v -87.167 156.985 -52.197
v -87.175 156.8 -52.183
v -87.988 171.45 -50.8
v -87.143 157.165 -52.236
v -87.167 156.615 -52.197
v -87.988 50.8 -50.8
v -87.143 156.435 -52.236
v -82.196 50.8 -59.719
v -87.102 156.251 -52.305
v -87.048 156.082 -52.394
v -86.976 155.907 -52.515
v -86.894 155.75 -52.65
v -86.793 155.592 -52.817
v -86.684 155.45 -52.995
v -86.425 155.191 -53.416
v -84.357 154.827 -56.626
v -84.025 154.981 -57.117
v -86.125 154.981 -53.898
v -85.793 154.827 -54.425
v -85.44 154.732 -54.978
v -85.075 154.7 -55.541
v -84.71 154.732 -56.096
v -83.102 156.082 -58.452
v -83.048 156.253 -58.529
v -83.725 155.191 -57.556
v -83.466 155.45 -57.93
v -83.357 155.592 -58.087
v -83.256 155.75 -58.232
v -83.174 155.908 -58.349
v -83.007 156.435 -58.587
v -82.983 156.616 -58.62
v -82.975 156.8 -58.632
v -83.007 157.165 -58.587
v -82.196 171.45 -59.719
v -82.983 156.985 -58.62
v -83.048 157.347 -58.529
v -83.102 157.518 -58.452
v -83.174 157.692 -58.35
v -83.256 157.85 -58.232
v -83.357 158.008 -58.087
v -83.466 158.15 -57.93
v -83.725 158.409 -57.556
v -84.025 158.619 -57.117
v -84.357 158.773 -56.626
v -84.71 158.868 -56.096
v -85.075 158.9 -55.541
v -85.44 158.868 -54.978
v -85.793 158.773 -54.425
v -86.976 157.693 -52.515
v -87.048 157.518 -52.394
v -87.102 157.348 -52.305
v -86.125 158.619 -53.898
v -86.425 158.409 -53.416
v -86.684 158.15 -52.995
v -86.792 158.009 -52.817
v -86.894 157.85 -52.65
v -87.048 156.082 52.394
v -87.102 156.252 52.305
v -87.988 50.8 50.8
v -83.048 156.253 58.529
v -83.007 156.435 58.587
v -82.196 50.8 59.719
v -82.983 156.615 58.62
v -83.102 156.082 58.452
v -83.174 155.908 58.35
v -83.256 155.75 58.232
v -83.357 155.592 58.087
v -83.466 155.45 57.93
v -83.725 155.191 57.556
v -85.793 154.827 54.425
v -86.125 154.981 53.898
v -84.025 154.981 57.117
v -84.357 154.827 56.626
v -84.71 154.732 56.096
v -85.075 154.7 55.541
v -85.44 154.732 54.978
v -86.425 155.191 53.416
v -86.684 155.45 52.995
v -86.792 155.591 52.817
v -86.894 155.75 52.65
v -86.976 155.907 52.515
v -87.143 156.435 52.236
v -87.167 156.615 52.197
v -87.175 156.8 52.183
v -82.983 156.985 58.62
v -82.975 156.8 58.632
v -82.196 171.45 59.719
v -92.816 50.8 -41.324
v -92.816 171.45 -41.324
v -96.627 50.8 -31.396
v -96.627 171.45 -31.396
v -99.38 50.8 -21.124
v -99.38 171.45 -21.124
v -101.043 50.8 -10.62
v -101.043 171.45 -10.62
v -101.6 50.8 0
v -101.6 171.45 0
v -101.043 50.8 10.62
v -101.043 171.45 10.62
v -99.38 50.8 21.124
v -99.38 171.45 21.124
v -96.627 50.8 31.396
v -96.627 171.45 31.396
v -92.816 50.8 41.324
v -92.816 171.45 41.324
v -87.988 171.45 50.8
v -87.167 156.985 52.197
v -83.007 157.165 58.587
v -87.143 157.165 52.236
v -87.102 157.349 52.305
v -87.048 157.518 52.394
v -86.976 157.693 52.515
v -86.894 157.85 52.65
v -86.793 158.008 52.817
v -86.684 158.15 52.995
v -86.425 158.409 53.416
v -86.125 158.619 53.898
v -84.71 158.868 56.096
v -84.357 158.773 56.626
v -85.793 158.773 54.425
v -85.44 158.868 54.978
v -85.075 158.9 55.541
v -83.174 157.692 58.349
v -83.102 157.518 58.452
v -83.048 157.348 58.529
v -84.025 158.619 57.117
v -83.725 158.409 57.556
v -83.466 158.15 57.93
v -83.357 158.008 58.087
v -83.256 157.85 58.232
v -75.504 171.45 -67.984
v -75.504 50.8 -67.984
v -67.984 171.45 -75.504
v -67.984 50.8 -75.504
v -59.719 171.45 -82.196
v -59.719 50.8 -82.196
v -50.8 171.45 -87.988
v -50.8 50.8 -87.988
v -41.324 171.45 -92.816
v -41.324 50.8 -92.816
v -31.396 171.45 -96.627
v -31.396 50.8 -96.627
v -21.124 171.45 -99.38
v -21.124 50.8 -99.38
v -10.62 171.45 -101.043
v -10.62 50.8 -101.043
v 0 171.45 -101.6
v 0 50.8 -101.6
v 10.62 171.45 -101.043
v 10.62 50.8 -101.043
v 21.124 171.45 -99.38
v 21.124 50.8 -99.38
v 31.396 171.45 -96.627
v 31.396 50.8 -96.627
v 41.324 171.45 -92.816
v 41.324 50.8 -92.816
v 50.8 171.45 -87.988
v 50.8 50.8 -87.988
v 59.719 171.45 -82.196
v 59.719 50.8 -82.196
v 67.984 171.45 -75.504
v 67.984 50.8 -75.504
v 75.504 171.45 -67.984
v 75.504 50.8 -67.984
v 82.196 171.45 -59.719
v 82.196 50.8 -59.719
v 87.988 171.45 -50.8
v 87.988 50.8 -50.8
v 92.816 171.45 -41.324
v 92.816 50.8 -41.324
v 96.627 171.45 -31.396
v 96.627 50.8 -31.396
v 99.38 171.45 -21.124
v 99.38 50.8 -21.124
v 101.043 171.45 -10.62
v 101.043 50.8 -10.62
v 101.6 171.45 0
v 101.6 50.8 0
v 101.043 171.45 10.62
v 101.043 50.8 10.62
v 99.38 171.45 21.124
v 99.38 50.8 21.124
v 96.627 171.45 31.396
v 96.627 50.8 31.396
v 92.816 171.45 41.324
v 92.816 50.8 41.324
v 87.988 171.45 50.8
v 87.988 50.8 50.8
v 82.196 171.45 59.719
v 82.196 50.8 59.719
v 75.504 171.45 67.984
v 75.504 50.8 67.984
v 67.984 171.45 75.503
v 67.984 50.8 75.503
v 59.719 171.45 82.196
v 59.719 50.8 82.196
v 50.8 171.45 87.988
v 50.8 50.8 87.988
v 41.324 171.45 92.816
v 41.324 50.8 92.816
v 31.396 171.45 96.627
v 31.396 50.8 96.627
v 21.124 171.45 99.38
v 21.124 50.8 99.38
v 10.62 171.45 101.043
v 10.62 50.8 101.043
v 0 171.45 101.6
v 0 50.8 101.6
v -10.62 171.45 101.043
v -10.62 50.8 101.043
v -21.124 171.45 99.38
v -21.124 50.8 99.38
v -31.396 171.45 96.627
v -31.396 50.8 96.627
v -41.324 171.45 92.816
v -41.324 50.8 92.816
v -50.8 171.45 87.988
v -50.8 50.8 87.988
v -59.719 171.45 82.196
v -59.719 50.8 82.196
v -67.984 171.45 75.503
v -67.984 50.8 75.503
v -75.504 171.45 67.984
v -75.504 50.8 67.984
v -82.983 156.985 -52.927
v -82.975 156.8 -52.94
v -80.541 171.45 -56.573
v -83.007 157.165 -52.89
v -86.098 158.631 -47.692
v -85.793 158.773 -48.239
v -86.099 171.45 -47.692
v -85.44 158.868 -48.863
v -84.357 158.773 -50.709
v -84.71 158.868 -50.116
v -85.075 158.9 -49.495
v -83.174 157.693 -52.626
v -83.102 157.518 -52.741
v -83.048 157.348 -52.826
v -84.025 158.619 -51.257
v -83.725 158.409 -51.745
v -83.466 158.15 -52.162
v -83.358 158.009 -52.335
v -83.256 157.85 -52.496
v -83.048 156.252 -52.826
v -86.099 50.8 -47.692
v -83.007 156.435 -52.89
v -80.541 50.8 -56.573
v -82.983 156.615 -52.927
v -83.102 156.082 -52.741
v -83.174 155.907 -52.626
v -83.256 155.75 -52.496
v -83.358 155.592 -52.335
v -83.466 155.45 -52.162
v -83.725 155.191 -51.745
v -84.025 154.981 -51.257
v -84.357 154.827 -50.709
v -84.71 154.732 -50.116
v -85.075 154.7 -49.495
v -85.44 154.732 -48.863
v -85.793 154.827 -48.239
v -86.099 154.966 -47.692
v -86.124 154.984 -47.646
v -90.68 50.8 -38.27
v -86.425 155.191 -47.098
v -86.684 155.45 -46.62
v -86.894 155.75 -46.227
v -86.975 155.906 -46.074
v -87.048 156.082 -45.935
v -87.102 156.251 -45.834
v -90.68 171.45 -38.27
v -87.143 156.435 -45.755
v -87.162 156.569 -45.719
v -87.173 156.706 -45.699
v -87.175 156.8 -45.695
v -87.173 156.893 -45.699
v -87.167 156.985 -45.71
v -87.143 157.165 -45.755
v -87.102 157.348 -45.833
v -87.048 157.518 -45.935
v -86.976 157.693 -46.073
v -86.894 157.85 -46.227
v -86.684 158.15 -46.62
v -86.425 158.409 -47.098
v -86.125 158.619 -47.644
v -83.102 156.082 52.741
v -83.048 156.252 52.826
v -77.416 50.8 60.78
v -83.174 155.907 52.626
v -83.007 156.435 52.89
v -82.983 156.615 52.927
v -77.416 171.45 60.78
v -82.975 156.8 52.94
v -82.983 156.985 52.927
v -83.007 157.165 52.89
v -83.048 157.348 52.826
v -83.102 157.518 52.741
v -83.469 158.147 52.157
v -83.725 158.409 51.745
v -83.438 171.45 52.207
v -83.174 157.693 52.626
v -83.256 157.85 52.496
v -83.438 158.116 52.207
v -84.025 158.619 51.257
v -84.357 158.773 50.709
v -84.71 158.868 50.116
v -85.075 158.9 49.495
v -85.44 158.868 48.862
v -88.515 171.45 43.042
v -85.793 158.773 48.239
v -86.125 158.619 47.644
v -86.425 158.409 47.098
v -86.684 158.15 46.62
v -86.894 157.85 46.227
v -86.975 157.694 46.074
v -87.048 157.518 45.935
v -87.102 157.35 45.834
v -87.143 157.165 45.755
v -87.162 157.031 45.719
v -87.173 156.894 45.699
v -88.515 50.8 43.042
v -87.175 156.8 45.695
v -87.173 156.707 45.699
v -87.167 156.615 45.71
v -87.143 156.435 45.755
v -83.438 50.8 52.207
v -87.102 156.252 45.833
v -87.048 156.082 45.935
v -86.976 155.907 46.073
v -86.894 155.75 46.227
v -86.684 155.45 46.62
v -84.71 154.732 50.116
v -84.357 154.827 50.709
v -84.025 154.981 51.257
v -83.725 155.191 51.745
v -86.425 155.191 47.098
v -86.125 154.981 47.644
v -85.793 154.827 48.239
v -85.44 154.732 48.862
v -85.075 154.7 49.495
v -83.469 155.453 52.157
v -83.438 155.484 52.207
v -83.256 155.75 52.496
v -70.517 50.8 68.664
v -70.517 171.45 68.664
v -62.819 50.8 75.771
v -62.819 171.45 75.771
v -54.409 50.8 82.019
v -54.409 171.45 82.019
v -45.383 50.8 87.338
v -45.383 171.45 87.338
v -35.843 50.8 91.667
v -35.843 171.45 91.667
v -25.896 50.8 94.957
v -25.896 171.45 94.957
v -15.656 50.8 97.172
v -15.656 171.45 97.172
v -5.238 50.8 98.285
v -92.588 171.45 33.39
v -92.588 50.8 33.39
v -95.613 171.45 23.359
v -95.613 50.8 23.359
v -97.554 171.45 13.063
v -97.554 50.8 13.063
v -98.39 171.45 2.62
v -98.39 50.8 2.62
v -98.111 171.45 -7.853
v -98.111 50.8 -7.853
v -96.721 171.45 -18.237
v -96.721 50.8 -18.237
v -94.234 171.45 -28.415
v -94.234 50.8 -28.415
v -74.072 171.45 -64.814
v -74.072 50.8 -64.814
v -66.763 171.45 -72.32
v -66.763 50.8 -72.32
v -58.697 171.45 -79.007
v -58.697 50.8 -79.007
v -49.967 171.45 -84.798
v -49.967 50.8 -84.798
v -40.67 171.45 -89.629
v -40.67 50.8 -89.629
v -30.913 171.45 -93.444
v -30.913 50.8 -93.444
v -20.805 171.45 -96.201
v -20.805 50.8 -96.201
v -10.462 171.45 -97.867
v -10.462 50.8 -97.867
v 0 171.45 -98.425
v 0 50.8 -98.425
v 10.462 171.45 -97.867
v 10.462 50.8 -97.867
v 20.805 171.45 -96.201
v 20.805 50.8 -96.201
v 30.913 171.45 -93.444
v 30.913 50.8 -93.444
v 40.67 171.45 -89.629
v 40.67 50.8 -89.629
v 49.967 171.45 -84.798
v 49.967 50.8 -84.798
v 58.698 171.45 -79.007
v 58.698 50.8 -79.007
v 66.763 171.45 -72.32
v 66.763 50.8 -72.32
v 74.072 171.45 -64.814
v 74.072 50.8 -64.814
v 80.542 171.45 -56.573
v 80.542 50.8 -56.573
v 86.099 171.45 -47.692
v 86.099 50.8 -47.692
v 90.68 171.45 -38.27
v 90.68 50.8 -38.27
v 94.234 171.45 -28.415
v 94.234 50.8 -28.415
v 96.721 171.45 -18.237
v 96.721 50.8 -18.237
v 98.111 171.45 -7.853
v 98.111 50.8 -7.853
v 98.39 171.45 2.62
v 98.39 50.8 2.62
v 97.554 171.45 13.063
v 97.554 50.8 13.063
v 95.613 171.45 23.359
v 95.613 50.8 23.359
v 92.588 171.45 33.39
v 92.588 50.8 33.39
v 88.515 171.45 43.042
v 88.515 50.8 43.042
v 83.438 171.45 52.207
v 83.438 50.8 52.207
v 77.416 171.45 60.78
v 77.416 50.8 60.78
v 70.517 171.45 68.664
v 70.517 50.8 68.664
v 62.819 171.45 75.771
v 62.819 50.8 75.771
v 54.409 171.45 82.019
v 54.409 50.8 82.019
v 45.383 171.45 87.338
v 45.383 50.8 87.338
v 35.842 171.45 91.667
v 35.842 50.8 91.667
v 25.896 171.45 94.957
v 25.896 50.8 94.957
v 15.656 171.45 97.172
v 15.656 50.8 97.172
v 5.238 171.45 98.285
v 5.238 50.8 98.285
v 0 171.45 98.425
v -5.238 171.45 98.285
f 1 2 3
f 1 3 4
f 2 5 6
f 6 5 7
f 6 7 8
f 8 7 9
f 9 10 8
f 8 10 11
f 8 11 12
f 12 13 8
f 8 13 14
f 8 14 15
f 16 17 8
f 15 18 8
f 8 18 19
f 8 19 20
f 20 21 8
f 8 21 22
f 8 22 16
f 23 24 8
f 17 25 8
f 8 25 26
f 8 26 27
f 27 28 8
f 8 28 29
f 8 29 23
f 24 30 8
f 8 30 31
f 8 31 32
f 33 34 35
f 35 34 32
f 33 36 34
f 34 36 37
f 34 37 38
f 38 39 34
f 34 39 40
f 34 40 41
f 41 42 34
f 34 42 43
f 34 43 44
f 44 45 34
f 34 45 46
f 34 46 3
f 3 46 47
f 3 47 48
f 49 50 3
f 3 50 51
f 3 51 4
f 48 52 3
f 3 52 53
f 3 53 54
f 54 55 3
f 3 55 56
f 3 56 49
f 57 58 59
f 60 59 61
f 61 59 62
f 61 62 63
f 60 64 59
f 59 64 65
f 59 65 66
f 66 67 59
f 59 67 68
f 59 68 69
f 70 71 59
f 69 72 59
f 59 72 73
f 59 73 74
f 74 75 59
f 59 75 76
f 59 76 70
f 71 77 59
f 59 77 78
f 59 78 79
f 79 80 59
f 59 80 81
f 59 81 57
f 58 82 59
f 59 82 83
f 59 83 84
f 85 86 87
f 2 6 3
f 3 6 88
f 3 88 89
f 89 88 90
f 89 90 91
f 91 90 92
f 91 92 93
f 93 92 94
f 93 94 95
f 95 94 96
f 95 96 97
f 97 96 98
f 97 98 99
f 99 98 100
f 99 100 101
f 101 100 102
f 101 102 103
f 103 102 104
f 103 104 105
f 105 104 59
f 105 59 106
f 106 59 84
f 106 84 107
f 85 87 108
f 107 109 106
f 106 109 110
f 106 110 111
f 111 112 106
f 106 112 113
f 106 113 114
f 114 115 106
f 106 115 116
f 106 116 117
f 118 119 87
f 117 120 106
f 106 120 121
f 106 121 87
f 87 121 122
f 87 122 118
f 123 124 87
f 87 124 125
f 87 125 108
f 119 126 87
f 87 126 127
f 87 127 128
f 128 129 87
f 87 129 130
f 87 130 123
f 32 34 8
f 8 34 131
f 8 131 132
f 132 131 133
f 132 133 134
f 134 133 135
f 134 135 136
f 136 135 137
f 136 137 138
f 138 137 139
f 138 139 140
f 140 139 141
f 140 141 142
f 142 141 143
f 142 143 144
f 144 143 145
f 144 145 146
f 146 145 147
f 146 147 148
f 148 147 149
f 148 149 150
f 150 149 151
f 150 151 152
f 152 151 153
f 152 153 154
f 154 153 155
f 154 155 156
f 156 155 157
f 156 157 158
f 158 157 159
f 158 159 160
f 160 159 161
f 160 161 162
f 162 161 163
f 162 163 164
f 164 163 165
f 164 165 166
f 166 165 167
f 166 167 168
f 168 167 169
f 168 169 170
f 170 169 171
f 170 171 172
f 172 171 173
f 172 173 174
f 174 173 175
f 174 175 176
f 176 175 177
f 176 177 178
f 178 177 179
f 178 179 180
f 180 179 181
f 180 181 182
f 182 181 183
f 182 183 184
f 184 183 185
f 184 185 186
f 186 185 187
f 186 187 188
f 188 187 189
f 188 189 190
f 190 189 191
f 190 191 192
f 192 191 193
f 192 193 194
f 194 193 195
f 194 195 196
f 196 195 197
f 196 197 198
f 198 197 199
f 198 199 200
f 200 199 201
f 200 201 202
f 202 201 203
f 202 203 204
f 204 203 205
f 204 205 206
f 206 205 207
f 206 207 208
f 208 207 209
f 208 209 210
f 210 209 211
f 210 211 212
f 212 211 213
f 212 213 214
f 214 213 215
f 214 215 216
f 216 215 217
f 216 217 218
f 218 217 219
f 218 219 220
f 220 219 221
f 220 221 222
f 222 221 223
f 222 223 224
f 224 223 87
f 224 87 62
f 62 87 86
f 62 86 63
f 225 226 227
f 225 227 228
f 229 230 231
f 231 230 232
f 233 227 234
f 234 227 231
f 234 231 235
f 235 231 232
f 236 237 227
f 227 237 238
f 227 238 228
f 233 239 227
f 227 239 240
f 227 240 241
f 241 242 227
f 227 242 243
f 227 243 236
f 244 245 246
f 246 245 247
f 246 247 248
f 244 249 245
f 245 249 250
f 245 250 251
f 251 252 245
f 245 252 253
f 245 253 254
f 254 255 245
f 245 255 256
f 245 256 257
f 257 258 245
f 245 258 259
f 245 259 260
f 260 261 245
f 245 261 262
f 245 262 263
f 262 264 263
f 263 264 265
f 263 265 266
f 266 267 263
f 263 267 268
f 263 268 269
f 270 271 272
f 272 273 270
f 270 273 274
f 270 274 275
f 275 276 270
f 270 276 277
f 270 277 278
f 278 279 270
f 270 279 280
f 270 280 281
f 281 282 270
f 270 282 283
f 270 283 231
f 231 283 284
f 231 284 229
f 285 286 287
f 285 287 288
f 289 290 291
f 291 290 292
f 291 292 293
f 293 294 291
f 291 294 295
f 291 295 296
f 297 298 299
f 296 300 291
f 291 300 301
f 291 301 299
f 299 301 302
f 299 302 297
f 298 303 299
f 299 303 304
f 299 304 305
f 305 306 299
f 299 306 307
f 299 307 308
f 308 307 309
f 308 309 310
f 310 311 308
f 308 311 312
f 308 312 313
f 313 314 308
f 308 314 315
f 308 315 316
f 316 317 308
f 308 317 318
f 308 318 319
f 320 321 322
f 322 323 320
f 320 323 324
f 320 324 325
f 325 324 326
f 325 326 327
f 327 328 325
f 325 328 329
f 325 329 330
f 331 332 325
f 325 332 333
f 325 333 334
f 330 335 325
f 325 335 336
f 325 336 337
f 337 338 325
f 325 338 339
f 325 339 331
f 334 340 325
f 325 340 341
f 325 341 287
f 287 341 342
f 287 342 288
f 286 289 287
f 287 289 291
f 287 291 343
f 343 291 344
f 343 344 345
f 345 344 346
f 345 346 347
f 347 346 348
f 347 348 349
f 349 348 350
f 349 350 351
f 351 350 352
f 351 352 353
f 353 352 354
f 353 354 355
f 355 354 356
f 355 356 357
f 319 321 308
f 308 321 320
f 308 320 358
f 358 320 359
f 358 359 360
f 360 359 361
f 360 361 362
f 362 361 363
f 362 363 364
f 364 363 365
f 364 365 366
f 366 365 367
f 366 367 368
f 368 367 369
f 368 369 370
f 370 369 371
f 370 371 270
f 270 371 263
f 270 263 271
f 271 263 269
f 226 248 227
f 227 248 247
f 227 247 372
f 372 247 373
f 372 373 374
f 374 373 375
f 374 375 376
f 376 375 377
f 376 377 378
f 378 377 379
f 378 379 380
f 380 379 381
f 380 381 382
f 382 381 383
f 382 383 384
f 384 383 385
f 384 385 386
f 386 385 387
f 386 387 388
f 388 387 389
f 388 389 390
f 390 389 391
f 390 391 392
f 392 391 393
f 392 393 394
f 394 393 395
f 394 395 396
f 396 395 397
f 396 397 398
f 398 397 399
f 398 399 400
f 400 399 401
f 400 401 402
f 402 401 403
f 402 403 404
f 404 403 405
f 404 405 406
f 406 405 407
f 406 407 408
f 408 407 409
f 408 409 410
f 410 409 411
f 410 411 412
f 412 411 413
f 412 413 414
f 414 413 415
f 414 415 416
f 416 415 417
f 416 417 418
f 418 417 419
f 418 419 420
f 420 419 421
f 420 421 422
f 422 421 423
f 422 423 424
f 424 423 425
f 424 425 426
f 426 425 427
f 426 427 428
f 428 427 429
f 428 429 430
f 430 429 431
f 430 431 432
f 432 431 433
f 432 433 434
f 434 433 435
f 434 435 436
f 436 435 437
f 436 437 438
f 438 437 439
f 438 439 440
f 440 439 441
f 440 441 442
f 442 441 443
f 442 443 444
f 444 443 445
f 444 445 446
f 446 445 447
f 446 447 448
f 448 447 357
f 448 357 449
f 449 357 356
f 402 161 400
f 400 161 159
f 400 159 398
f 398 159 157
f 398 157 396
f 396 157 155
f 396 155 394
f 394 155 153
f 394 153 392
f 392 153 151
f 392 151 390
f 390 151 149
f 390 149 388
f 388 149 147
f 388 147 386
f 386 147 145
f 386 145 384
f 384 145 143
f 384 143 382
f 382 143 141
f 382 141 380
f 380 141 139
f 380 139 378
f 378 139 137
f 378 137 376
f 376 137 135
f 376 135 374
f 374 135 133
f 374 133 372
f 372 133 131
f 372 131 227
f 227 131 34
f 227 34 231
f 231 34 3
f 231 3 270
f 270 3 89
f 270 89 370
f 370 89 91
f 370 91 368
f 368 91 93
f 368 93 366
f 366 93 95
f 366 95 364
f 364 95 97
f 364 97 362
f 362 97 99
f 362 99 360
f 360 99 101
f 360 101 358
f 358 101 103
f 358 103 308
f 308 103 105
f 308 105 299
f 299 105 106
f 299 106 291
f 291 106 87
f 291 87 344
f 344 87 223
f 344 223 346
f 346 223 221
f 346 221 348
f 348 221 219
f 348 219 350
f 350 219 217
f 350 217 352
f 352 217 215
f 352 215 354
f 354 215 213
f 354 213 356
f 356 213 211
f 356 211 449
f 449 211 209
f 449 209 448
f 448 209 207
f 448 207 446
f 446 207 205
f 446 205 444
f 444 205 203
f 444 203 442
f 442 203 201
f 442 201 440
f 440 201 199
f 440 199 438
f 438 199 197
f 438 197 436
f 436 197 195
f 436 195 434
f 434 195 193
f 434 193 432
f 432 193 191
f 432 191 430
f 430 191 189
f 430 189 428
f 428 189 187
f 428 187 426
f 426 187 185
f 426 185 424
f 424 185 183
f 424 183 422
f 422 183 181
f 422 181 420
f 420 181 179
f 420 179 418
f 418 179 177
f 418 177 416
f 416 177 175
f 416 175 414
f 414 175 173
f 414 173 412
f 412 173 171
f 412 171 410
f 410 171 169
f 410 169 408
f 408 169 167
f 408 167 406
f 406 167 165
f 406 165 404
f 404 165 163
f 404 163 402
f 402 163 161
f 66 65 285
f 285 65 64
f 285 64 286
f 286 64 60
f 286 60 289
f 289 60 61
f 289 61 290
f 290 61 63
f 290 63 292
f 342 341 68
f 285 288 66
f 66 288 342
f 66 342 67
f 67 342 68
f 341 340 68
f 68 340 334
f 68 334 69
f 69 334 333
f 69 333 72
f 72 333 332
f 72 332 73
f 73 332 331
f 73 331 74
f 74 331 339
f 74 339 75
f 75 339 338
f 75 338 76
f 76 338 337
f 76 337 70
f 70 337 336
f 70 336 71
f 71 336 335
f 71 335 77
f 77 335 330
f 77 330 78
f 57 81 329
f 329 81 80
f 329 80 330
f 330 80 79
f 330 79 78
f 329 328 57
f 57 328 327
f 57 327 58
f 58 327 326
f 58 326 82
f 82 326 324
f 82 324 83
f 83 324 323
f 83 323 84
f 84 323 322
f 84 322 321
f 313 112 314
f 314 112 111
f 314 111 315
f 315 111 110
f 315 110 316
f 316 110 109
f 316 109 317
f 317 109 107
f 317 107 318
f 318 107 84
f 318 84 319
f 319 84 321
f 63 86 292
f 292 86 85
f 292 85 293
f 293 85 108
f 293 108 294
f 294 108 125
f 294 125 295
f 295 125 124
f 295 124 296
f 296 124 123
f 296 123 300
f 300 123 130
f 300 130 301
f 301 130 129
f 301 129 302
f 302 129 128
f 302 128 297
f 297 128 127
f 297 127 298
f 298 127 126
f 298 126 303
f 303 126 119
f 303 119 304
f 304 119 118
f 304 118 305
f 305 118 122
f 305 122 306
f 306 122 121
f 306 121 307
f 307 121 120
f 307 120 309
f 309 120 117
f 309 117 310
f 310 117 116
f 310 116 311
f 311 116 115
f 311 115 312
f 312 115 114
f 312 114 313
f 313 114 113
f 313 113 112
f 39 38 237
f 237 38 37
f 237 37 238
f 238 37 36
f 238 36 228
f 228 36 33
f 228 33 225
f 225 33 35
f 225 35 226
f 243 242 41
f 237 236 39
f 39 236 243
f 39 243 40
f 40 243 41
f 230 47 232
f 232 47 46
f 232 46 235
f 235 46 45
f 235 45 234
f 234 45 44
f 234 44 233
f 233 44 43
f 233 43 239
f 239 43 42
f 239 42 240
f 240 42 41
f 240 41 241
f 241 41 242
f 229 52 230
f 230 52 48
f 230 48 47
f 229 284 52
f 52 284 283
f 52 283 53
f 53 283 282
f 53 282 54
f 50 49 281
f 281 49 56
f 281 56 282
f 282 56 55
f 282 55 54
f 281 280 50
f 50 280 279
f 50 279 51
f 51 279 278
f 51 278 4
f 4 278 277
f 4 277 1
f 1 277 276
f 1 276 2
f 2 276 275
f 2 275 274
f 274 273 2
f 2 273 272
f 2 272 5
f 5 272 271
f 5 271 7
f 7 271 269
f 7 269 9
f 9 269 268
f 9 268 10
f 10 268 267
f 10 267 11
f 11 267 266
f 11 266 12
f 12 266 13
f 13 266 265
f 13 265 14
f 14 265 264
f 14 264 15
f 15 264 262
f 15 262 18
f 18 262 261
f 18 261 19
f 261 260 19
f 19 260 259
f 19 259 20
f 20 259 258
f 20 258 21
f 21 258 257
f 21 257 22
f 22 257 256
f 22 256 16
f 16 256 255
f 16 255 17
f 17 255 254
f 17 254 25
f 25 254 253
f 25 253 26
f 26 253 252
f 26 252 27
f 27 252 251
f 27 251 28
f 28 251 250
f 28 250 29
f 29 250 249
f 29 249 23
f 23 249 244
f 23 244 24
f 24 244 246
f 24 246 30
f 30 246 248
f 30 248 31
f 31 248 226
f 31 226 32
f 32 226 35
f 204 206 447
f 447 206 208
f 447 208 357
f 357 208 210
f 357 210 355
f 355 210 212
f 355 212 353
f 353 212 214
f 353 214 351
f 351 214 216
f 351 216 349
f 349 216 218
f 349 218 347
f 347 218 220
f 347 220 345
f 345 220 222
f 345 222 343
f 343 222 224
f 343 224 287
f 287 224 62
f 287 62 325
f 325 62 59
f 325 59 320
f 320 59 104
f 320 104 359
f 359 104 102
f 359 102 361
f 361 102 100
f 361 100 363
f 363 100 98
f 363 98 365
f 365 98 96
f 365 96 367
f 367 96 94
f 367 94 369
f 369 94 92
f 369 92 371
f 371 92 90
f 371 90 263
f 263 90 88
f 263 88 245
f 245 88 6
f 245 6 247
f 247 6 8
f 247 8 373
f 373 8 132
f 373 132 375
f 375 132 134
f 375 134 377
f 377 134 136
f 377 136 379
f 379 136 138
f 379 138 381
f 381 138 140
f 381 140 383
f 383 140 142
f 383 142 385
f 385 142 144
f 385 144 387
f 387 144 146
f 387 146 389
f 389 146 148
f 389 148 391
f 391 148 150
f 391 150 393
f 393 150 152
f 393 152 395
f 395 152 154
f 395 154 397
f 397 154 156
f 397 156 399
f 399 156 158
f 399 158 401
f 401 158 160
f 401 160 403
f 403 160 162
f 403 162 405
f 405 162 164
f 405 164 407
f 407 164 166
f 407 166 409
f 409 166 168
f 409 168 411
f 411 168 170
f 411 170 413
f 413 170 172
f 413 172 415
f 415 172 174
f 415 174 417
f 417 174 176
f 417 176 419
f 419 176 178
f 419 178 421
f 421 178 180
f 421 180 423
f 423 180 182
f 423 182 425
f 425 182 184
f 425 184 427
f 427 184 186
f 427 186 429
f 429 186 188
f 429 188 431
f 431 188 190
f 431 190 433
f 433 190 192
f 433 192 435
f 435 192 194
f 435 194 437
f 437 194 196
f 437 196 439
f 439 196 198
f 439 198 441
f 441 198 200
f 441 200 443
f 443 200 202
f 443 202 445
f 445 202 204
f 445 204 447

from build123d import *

# Parameters (mm, degrees)
SKETCH1_R               = 101.6
SKETCH1_R_2             = 95.25
BOSS_EXTRUDE1_DEPTH     = 25.4
SKETCH2_R               = 3.175
CUT_EXTRUDE1_DEPTH      = 102.6
CUT_EXTRUDE1_DEPTH_BACK = 102.6
SKETCH5_R               = 101.6
SKETCH5_R_2             = 98.425
BOSS_EXTRUDE2_DEPTH     = 146.05
SKETCH9_R               = 2.1
CUT_EXTRUDE5_DEPTH      = 204.2000001
SKETCH10_R              = 101.6
CUT_EXTRUDE6_DEPTH      = 50.8


with BuildPart() as part:
    # Sketch1 → Boss-Extrude1 (new body)
    with BuildSketch(Plane(origin=(0, 0, 0), x_dir=(1, 0, 0), z_dir=(0, 1, 0))):
        Circle(SKETCH1_R)
        Circle(SKETCH1_R_2, mode=Mode.SUBTRACT)
    extrude(amount=BOSS_EXTRUDE1_DEPTH)

    # Sketch2 → Cut-Extrude1 (cut, two sides)
    with BuildSketch(Plane.XY) as cut_extrude1_sk:
        with Locations((0, 12.7)):
            Circle(SKETCH2_R)
    extrude(amount=CUT_EXTRUDE1_DEPTH, mode=Mode.SUBTRACT)
    extrude(cut_extrude1_sk.sketch, amount=-CUT_EXTRUDE1_DEPTH_BACK, mode=Mode.SUBTRACT)

    # Sketch5 → Boss-Extrude2 (add)
    with BuildSketch(Plane(origin=(0, 25.4, 0), x_dir=(1, 0, 0), z_dir=(0, 1, 0))):
        Circle(SKETCH5_R)
        Circle(SKETCH5_R_2, mode=Mode.SUBTRACT)
    extrude(amount=BOSS_EXTRUDE2_DEPTH)

    # Sketch9 → Cut-Extrude5 (cut, through all)
    with BuildSketch(Plane.XY.offset(101.6)):
        with Locations((-85.075, 156.8)):
            Circle(SKETCH9_R)
    extrude(amount=-CUT_EXTRUDE5_DEPTH, mode=Mode.SUBTRACT)

    # Sketch10 → Cut-Extrude6 (cut)
    with BuildSketch(Plane(origin=(0, 0, 0), x_dir=(-1, 0, 0), z_dir=(0, -1, 0))):
        Circle(SKETCH10_R)
    extrude(amount=-CUT_EXTRUDE6_DEPTH, mode=Mode.SUBTRACT)


solid = part.part
